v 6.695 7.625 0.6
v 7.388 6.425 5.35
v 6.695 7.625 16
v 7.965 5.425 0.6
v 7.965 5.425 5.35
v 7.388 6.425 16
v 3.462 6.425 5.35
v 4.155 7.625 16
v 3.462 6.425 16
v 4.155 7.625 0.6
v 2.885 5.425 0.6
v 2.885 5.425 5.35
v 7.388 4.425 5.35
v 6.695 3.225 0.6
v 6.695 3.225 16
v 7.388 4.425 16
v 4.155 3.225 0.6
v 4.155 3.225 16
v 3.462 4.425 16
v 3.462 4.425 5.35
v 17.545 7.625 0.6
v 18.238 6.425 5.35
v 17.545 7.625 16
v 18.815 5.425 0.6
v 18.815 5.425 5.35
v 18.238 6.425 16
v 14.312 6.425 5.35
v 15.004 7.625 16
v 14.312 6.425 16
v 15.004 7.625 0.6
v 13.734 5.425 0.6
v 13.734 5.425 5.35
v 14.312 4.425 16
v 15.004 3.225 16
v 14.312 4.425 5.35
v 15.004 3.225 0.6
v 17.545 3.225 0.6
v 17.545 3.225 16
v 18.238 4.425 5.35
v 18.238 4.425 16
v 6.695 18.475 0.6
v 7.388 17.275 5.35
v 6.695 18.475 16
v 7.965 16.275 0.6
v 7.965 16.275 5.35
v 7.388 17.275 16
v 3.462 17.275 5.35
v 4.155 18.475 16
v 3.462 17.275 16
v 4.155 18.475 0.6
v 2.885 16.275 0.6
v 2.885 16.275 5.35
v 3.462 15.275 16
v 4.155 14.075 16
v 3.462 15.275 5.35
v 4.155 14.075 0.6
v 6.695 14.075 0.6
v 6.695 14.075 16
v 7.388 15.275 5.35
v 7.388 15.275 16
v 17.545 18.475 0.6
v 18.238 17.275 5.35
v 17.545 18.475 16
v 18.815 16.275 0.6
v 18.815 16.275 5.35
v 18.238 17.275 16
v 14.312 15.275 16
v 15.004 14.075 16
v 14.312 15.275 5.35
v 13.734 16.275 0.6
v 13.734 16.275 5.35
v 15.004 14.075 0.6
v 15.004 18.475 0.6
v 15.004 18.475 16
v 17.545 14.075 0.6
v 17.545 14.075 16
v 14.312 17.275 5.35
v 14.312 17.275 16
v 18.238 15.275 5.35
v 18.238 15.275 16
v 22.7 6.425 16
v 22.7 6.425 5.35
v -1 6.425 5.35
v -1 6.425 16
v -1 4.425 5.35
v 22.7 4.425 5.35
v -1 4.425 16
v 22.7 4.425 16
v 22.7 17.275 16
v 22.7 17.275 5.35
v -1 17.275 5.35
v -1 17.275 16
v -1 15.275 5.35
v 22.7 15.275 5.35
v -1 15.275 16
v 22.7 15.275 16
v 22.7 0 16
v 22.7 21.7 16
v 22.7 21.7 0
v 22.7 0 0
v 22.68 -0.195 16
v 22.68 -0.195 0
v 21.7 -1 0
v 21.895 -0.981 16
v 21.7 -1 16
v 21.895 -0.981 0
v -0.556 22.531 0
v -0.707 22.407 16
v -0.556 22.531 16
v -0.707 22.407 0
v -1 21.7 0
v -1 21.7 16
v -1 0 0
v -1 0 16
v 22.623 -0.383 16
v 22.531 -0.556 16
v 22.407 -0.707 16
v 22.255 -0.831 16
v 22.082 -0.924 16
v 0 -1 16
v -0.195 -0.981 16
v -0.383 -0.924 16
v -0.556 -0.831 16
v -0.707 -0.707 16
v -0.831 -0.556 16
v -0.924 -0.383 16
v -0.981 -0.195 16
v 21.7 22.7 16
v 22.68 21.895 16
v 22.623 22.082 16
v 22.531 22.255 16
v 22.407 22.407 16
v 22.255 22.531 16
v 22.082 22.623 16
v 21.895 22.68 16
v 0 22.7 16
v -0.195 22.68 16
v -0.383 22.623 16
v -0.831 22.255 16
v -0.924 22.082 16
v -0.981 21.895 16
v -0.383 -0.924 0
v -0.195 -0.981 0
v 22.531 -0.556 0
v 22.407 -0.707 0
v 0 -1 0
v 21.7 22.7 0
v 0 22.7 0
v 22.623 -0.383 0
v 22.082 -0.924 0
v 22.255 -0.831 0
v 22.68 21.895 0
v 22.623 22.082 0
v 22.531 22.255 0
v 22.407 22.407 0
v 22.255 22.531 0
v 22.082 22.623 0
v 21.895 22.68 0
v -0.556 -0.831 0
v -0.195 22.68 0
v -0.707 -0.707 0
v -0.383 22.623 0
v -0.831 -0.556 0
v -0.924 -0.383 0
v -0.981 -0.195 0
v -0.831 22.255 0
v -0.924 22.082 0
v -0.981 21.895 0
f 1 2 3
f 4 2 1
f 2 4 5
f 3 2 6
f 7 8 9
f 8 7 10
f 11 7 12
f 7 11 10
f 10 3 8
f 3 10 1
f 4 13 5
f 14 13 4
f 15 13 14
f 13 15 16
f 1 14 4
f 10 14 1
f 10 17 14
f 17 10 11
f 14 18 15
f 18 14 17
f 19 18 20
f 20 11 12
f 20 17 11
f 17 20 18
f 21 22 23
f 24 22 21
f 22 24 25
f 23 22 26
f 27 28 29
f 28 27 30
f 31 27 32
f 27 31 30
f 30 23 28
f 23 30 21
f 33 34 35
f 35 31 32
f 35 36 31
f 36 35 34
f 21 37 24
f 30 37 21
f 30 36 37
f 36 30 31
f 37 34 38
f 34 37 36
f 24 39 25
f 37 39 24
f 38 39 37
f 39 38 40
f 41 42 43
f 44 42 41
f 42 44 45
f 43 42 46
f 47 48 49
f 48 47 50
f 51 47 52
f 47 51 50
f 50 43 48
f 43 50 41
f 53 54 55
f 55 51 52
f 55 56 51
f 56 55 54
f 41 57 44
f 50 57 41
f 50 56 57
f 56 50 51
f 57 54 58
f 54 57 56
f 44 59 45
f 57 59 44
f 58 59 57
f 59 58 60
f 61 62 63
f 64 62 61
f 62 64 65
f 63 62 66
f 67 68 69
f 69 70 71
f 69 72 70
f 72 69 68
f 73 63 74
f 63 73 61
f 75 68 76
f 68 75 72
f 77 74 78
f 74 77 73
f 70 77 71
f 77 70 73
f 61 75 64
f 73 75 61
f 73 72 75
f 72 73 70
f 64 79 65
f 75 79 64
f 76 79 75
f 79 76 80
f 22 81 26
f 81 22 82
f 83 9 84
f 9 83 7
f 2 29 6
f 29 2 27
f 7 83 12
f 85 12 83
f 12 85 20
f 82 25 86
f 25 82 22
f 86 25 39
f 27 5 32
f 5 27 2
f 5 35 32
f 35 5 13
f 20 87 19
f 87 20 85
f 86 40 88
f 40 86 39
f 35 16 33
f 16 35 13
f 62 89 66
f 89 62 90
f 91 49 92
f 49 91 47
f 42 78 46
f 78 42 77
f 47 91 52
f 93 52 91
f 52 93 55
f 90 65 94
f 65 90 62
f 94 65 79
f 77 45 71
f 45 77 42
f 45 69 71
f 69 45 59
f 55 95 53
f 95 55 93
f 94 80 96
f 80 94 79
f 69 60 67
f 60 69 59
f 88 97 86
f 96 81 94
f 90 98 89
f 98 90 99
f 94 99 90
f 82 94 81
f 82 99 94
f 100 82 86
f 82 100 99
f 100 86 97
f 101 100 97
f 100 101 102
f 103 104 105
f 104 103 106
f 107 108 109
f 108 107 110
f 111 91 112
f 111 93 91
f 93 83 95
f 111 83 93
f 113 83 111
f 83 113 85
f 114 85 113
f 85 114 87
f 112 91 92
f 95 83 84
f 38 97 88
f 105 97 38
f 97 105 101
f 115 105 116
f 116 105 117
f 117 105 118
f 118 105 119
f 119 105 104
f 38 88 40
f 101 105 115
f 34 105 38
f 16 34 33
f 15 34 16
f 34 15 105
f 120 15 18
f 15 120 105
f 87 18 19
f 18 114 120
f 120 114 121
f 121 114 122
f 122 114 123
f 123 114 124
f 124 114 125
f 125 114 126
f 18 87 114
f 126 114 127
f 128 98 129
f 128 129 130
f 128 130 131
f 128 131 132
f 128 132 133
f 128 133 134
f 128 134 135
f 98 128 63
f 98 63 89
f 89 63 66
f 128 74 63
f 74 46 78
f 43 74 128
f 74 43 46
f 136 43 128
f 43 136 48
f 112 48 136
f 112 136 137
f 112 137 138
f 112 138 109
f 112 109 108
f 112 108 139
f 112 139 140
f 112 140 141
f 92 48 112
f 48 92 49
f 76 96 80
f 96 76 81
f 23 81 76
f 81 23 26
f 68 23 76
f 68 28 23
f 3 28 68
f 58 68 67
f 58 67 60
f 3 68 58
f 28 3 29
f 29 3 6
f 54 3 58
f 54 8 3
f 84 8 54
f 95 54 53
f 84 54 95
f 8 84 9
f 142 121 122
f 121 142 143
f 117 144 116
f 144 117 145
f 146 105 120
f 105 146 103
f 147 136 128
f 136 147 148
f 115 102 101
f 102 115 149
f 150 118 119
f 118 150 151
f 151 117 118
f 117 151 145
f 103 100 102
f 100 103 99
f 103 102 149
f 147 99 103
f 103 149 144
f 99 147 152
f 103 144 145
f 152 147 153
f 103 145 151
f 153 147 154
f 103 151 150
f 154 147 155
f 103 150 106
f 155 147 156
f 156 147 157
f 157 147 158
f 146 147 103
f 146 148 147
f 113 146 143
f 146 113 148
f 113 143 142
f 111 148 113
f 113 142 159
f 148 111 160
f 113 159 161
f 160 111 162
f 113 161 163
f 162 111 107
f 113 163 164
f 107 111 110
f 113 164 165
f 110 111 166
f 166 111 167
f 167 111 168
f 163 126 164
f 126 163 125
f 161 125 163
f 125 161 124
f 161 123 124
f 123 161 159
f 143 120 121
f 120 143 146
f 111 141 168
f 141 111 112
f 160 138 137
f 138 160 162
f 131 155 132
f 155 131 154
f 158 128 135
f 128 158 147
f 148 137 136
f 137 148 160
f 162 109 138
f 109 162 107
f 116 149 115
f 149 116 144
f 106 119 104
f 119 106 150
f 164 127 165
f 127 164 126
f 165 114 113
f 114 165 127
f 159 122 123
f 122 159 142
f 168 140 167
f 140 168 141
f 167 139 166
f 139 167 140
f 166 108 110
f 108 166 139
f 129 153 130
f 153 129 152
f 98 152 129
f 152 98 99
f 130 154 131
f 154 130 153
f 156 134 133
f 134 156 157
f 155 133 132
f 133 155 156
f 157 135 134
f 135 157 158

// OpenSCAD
/**
	Customisable hex bit holder 
	Copyring Mykhaylo Lytvynyuk March 2015
	http://mobilemodding.info
	Released under 
	Attribution - Non-Commercial - No Derivatives License

	*** March 16, 2015 Initial Version
*/

/**
    Modded by Bartłomiej Burdukiewicz
    https://devwork.space
*/

// number of rows
_row = 2;//[0,1,2,3,4,5,6,7,8,9,10,11,12,13,14,15] 					

// number of columns
_colum = 2;//[0,1,2,3,4,5,6,7,8,9,10,11,12,13,14,15]
 					
// mm, base height
_height = 15;

// mm, printer tolerance, can be negative, required to compensate specific printer contraction/expansion during print.
_tolerance = 0.40;

//mm, between sides and bit
_extraPadding = 6;

// Rounded corners
_rounded = 1;//[1:Yes,0:No]

// Determines if hole goes compeltely through the base
_holeThrough = 1;	//[1:Yes,0:No]	

// Make slot to add flex to the walls
_slotted = 1;//[1:Yes,0:No]

// mm, defines bit zise ( 6.35 is 1/4" )
_bitSize = 4.00;

// mm, base solid height
_baseHeight = 0.60;

/* [Hidden] */
// local vars
outerRadius = outRadius(_bitSize + _tolerance/2,6);
delta = outerRadius + _extraPadding;
width = ( _colum * (outerRadius + _extraPadding) );
depth = ( _row * (outerRadius + _extraPadding) );
minkowskiCylinderHeight = 1;

module assembly() {
    difference() {
        base();
        translate([0, 0, _baseHeight])
        for(yd = [1:_row]) {
            for(xd = [1:_colum]) {
                    translate([(xd * delta)-(delta/2),(yd *delta)-(delta/2),_holeThrough?0:1]) hexBit();
            }
            if(_slotted){
                translate([-2,(yd *delta)-(delta/2) - 1,minkowskiCylinderHeight + _height - _height * 0.75]) cube([width + 4,2,_height*0.75],center=false);
            }
        }
    }
}

module hexBit() {
	cylinder(h=_height+minkowskiCylinderHeight,r=outRadius(_bitSize/2 + _tolerance/2,6),$fn=6, center = false);
}

module base() {
	minkowski() {
		cube([width,depth,_height]);
		if(_rounded) cylinder(r=1,h=minkowskiCylinderHeight,$fn=32,center = false);
	}
}

// calculates outradious by given inradius
function outRadius(inradius, sides) = inradius / ( cos (180 / sides));

assembly();
